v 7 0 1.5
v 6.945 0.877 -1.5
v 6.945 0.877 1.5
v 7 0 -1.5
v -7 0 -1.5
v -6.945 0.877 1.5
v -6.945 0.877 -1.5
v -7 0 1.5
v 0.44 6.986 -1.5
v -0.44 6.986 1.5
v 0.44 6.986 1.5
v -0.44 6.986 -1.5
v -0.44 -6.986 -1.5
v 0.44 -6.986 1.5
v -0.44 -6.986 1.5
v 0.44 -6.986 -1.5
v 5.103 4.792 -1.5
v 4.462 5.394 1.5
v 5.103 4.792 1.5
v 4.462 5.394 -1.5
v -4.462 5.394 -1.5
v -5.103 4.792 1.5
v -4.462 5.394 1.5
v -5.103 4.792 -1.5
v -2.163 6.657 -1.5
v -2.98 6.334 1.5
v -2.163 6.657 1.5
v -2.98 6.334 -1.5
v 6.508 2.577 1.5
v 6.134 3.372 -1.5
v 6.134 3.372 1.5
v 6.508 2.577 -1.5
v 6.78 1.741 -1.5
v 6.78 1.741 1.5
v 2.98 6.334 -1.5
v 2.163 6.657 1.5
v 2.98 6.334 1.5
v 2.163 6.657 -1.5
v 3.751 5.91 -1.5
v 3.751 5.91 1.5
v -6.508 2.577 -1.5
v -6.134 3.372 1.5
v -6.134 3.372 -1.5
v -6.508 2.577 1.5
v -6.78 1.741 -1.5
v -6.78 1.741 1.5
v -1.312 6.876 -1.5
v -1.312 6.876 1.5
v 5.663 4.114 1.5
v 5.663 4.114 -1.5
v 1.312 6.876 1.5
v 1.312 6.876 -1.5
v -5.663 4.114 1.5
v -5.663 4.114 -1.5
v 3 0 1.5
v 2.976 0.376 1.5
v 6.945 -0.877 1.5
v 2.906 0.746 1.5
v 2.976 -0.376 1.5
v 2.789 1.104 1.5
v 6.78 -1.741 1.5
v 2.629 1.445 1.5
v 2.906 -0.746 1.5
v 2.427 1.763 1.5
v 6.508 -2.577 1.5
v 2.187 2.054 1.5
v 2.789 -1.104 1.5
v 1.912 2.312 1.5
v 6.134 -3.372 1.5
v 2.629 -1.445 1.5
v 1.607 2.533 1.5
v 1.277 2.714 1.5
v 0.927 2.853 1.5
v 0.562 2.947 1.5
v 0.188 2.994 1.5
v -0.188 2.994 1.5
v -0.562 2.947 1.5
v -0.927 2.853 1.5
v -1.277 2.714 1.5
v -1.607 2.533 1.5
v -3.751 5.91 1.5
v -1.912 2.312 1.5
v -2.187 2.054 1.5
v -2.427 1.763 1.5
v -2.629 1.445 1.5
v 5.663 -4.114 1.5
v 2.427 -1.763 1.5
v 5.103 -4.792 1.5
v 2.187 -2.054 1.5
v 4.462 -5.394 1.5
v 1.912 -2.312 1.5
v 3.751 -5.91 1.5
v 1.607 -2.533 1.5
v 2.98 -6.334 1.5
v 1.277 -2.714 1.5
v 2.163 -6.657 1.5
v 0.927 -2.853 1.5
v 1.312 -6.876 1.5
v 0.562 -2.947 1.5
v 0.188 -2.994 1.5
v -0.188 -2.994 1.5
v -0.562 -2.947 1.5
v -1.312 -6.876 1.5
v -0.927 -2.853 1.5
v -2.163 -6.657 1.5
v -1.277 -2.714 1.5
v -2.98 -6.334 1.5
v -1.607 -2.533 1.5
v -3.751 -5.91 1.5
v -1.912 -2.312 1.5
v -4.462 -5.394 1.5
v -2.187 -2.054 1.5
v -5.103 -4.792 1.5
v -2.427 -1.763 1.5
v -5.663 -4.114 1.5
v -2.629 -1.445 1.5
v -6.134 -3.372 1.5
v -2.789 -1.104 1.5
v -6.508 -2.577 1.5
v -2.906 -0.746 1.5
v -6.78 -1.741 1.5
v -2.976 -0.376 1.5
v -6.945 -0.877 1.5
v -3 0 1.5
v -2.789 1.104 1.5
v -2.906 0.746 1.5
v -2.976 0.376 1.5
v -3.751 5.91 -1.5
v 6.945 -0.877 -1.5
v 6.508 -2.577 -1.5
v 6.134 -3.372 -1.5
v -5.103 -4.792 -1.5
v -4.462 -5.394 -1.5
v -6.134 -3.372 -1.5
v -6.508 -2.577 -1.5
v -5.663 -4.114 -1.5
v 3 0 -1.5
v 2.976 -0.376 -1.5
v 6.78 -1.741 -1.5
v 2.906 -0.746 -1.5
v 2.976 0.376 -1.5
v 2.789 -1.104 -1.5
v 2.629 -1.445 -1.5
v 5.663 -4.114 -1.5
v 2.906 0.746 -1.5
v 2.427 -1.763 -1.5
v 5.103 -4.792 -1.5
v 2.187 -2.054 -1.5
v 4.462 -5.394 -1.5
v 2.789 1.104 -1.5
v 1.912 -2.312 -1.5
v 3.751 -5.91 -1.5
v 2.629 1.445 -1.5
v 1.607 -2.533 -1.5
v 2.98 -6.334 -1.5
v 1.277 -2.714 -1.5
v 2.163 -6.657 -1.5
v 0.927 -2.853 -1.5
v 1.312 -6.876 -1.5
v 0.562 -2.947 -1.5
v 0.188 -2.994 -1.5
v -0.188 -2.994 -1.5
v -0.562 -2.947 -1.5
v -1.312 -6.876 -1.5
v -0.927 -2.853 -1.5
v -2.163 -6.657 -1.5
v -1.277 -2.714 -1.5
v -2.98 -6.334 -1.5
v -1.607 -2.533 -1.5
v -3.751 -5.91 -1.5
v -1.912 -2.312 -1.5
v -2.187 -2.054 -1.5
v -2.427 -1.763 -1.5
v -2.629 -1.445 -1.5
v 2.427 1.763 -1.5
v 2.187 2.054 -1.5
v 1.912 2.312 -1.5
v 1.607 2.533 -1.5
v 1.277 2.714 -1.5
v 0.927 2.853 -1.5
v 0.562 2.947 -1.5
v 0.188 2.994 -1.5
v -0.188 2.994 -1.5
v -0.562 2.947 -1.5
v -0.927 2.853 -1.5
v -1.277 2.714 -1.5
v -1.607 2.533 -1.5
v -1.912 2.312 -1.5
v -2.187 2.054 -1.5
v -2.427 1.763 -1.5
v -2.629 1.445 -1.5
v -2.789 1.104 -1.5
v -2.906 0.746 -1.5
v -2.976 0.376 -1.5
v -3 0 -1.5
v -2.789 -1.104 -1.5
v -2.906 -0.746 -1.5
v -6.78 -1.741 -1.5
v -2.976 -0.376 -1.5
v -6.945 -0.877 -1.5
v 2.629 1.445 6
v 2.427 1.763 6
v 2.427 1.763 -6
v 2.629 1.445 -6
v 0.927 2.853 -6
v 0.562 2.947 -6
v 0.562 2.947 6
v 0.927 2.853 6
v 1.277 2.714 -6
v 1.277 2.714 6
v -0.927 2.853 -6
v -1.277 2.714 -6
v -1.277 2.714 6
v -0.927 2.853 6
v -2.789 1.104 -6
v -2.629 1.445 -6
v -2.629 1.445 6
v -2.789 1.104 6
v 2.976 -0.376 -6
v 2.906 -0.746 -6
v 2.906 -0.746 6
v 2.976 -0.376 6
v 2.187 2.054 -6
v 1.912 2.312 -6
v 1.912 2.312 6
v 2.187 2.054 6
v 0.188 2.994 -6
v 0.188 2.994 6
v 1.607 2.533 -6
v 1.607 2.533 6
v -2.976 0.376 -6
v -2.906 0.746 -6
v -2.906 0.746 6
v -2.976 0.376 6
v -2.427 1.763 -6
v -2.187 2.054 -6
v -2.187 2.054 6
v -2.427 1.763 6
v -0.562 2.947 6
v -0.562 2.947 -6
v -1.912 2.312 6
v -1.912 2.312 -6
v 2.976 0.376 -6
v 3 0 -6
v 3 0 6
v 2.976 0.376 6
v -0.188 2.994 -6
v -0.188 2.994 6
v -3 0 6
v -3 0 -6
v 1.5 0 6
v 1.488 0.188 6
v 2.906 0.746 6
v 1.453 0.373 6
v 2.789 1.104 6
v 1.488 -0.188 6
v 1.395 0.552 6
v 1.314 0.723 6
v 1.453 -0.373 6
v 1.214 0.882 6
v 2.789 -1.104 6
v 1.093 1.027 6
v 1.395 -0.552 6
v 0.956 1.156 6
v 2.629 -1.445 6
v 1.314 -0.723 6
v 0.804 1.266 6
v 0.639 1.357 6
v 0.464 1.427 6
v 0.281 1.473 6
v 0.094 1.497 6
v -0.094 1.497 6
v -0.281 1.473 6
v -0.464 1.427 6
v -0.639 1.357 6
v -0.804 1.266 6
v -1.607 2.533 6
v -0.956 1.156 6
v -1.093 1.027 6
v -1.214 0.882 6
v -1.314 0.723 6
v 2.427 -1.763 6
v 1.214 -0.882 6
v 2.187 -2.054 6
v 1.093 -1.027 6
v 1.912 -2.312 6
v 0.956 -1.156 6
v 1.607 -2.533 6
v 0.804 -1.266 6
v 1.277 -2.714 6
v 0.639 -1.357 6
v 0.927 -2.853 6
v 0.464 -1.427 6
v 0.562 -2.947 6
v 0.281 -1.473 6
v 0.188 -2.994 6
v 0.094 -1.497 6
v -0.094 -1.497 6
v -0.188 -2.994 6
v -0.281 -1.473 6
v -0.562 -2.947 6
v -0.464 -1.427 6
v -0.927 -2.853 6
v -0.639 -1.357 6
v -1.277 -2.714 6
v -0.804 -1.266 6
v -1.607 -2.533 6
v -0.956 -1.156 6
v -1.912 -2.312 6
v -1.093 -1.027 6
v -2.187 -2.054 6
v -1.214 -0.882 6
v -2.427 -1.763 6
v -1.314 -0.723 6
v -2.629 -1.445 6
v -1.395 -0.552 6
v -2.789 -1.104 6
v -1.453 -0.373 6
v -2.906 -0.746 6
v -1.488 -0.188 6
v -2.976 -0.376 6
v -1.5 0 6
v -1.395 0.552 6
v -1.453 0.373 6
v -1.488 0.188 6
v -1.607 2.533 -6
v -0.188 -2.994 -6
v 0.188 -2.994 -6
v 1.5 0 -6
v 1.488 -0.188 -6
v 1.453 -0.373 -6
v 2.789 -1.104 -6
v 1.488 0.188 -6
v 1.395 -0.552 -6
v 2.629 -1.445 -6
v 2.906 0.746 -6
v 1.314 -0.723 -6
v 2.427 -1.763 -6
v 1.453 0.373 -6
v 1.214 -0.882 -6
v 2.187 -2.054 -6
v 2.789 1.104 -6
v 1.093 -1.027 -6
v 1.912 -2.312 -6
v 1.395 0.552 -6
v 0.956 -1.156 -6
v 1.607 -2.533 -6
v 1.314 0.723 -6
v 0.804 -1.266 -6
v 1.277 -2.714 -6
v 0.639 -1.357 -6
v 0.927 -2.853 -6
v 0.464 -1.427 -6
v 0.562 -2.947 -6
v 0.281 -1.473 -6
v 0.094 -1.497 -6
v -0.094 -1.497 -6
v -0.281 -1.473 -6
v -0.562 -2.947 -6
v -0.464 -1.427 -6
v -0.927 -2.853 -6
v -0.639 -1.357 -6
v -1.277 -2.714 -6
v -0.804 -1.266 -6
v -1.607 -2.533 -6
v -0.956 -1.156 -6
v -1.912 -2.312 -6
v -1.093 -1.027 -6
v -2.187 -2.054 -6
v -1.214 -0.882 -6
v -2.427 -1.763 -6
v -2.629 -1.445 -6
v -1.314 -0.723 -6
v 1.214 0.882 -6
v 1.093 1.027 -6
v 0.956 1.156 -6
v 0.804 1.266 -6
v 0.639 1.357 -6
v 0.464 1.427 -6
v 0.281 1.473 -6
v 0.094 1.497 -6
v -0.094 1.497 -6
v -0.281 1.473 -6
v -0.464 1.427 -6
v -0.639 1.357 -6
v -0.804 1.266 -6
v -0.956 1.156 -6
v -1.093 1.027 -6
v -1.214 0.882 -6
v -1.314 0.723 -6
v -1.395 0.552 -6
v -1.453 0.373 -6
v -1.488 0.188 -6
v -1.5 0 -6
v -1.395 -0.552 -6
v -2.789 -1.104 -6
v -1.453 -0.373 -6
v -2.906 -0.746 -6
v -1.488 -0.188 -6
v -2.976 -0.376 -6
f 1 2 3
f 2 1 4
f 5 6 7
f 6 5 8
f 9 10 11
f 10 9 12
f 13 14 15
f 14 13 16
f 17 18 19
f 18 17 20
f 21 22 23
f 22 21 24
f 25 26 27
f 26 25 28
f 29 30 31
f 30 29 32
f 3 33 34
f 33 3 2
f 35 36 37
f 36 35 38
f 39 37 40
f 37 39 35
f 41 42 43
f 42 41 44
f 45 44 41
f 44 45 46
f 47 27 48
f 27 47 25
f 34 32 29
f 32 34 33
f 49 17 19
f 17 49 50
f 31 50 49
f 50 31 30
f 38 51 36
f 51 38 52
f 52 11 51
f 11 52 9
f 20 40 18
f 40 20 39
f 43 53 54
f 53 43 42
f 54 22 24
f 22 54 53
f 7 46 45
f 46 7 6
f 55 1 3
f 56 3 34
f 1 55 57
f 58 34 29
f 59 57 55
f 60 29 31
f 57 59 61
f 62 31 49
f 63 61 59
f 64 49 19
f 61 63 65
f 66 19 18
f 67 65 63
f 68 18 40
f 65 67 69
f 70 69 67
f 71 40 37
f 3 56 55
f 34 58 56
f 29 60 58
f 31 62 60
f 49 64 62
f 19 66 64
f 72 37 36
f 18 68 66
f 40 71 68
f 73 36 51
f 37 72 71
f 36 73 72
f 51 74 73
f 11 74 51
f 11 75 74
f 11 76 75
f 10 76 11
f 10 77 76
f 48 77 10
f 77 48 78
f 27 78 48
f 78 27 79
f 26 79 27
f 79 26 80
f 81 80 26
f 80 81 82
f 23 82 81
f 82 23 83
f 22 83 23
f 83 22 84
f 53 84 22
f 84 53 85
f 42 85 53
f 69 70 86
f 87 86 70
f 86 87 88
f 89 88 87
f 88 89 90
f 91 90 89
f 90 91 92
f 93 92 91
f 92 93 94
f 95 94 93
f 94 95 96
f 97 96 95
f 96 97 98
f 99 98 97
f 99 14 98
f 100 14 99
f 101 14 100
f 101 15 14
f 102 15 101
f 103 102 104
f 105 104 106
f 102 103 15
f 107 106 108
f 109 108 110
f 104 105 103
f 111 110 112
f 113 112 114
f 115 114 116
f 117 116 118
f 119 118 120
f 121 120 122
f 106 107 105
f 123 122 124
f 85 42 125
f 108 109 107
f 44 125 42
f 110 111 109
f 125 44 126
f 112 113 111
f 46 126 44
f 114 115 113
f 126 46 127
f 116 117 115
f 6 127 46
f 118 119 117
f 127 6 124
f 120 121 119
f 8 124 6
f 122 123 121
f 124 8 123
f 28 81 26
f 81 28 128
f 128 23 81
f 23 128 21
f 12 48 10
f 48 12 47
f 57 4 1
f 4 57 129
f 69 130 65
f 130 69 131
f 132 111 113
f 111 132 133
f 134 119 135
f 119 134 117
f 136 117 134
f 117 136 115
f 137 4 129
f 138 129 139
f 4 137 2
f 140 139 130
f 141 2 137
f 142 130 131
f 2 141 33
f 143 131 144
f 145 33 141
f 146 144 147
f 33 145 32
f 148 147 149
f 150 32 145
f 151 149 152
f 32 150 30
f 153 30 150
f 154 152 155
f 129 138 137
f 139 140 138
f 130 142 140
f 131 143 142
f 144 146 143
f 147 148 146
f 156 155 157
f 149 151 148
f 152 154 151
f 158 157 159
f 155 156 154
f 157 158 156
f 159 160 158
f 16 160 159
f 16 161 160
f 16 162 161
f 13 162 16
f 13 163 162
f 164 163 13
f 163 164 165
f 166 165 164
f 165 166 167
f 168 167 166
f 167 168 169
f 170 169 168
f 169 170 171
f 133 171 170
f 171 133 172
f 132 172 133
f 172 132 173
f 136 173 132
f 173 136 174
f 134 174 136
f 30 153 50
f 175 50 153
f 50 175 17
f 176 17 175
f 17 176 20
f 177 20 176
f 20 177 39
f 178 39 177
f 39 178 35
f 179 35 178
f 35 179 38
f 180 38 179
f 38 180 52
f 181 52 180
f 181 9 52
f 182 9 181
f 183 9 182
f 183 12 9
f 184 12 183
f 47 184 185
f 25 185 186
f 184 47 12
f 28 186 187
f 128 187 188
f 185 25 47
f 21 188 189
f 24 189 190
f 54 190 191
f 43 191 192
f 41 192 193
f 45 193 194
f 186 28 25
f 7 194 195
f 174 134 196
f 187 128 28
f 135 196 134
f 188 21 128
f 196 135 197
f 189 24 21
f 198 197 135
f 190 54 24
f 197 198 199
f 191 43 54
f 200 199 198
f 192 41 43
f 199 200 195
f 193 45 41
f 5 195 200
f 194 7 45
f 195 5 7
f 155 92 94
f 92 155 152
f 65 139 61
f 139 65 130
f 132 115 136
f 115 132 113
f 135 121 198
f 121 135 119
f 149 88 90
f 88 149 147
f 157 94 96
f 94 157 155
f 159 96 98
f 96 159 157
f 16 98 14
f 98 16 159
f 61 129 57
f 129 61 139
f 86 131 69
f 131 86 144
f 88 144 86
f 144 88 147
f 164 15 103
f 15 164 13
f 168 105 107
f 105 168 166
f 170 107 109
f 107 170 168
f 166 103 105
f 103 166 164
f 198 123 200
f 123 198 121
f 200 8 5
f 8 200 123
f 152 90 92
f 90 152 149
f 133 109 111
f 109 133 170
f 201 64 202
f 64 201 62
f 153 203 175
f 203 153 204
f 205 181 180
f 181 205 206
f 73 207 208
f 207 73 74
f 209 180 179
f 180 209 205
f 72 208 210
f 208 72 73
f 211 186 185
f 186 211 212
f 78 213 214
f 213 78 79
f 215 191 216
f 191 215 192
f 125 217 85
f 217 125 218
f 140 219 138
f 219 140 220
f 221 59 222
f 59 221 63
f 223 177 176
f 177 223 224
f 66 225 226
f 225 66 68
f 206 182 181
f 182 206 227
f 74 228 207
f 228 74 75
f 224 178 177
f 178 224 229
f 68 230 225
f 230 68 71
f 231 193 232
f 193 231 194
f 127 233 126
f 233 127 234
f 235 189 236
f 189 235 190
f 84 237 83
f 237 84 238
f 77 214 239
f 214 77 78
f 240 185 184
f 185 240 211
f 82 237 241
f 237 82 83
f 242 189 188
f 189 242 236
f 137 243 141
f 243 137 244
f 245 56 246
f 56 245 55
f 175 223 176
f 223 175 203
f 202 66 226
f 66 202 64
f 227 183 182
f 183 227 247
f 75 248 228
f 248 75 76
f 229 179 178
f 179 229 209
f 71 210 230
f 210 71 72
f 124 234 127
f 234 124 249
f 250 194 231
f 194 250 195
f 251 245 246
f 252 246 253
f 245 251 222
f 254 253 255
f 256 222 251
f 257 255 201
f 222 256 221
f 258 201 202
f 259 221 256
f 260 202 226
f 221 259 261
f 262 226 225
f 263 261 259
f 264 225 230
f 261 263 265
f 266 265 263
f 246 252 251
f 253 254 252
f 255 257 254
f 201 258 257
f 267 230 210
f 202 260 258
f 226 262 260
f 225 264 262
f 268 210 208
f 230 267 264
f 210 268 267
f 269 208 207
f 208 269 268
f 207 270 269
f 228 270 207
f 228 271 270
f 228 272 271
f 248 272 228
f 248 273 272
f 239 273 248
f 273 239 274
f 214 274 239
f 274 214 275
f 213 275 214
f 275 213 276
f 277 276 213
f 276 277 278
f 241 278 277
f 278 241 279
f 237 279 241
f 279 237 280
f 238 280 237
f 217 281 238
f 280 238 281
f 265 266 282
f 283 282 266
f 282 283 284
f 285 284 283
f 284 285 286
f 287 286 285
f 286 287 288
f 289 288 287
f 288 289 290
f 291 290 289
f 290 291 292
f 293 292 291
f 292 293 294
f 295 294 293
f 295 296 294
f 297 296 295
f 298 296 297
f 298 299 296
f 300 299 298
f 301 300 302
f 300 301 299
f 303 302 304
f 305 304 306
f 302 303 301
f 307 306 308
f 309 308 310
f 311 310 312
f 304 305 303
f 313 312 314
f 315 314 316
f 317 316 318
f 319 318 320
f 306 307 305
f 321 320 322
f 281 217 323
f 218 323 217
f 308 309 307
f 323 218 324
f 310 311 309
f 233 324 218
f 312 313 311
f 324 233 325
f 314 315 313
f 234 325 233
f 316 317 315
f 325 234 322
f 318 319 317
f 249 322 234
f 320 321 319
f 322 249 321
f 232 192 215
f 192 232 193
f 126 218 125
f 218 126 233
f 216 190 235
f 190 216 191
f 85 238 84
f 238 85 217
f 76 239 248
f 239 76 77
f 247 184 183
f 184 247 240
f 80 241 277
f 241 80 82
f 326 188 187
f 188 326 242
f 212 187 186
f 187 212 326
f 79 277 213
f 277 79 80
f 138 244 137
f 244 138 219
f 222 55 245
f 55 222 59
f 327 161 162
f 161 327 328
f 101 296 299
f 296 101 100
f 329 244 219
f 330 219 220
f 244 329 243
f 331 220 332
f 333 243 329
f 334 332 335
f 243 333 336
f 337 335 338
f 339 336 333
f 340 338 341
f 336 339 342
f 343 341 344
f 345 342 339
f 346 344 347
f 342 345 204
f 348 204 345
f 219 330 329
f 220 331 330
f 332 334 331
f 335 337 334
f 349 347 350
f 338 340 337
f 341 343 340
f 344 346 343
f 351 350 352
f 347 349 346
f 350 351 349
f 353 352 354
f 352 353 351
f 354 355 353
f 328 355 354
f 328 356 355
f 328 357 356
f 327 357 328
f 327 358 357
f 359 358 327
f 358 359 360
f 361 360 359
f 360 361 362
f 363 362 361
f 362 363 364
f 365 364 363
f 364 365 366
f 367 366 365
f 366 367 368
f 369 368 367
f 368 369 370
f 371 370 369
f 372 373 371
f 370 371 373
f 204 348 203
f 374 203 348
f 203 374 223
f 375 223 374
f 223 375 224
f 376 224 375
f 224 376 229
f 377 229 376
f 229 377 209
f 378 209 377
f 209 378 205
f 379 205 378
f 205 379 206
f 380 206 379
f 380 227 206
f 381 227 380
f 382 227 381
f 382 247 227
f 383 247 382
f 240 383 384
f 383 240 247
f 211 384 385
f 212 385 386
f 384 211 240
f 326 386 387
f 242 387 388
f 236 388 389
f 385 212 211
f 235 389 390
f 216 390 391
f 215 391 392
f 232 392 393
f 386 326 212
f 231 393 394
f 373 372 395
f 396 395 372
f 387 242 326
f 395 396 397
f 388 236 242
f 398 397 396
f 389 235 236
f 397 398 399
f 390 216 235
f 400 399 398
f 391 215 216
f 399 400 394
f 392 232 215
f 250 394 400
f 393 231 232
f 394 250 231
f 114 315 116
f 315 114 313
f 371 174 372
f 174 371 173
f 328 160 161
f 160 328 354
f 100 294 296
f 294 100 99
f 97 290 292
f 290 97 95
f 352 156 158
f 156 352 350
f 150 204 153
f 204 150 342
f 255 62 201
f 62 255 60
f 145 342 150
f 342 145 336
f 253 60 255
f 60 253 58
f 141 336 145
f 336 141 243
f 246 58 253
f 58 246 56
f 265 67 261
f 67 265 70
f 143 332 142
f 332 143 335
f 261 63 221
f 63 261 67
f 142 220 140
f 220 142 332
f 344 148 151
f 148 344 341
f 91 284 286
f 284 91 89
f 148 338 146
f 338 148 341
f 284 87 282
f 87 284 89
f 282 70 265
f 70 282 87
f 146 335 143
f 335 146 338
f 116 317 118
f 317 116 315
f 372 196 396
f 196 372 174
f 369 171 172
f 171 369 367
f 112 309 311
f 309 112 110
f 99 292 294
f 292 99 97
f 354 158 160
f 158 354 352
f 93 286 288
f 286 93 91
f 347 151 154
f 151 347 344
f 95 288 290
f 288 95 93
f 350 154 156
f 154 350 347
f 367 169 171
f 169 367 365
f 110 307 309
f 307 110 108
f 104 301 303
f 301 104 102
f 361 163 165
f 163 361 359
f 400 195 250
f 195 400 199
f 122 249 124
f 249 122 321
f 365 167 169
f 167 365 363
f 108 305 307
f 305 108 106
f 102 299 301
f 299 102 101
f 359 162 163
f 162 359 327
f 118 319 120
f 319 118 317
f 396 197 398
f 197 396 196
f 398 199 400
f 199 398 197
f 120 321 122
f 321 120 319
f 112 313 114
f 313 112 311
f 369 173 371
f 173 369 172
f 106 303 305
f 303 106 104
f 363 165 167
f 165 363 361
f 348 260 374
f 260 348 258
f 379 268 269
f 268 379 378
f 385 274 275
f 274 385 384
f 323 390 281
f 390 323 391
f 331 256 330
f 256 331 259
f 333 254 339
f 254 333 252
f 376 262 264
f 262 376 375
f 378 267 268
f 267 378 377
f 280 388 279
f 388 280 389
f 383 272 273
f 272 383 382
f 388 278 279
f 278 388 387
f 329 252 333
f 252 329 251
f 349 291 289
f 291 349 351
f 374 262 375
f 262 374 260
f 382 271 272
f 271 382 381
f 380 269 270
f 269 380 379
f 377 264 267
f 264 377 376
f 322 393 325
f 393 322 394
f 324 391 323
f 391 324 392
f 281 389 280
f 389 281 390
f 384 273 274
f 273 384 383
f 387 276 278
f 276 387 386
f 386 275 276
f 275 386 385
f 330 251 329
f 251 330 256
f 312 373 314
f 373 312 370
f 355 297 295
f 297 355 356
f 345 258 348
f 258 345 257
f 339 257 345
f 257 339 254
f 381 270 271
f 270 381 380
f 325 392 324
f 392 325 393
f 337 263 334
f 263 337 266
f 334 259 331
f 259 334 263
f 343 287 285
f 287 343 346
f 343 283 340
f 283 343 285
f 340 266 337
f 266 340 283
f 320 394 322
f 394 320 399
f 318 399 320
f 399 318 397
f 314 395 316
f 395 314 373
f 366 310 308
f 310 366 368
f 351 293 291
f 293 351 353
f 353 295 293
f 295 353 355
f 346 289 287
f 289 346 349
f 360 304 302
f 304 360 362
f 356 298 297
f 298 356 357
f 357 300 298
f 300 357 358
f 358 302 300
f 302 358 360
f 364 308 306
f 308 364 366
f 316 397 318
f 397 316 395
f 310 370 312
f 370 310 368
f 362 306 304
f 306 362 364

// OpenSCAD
$fn = 50;


difference() {
	union() {
		translate(v = [0, 0, -1.5000000000]) {
			rotate(a = [0, 0, 0]) {
				cylinder(h = 3, r = 7.0000000000);
			}
		}
		translate(v = [0, 0, -6.0000000000]) {
			rotate(a = [0, 0, 0]) {
				cylinder(h = 12, r = 3.0000000000);
			}
		}
	}
	union() {
		translate(v = [0, 0, -125.0000000000]) {
			rotate(a = [0, 0, 0]) {
				cylinder(h = 250, r = 1.5000000000);
			}
		}
	}
}
